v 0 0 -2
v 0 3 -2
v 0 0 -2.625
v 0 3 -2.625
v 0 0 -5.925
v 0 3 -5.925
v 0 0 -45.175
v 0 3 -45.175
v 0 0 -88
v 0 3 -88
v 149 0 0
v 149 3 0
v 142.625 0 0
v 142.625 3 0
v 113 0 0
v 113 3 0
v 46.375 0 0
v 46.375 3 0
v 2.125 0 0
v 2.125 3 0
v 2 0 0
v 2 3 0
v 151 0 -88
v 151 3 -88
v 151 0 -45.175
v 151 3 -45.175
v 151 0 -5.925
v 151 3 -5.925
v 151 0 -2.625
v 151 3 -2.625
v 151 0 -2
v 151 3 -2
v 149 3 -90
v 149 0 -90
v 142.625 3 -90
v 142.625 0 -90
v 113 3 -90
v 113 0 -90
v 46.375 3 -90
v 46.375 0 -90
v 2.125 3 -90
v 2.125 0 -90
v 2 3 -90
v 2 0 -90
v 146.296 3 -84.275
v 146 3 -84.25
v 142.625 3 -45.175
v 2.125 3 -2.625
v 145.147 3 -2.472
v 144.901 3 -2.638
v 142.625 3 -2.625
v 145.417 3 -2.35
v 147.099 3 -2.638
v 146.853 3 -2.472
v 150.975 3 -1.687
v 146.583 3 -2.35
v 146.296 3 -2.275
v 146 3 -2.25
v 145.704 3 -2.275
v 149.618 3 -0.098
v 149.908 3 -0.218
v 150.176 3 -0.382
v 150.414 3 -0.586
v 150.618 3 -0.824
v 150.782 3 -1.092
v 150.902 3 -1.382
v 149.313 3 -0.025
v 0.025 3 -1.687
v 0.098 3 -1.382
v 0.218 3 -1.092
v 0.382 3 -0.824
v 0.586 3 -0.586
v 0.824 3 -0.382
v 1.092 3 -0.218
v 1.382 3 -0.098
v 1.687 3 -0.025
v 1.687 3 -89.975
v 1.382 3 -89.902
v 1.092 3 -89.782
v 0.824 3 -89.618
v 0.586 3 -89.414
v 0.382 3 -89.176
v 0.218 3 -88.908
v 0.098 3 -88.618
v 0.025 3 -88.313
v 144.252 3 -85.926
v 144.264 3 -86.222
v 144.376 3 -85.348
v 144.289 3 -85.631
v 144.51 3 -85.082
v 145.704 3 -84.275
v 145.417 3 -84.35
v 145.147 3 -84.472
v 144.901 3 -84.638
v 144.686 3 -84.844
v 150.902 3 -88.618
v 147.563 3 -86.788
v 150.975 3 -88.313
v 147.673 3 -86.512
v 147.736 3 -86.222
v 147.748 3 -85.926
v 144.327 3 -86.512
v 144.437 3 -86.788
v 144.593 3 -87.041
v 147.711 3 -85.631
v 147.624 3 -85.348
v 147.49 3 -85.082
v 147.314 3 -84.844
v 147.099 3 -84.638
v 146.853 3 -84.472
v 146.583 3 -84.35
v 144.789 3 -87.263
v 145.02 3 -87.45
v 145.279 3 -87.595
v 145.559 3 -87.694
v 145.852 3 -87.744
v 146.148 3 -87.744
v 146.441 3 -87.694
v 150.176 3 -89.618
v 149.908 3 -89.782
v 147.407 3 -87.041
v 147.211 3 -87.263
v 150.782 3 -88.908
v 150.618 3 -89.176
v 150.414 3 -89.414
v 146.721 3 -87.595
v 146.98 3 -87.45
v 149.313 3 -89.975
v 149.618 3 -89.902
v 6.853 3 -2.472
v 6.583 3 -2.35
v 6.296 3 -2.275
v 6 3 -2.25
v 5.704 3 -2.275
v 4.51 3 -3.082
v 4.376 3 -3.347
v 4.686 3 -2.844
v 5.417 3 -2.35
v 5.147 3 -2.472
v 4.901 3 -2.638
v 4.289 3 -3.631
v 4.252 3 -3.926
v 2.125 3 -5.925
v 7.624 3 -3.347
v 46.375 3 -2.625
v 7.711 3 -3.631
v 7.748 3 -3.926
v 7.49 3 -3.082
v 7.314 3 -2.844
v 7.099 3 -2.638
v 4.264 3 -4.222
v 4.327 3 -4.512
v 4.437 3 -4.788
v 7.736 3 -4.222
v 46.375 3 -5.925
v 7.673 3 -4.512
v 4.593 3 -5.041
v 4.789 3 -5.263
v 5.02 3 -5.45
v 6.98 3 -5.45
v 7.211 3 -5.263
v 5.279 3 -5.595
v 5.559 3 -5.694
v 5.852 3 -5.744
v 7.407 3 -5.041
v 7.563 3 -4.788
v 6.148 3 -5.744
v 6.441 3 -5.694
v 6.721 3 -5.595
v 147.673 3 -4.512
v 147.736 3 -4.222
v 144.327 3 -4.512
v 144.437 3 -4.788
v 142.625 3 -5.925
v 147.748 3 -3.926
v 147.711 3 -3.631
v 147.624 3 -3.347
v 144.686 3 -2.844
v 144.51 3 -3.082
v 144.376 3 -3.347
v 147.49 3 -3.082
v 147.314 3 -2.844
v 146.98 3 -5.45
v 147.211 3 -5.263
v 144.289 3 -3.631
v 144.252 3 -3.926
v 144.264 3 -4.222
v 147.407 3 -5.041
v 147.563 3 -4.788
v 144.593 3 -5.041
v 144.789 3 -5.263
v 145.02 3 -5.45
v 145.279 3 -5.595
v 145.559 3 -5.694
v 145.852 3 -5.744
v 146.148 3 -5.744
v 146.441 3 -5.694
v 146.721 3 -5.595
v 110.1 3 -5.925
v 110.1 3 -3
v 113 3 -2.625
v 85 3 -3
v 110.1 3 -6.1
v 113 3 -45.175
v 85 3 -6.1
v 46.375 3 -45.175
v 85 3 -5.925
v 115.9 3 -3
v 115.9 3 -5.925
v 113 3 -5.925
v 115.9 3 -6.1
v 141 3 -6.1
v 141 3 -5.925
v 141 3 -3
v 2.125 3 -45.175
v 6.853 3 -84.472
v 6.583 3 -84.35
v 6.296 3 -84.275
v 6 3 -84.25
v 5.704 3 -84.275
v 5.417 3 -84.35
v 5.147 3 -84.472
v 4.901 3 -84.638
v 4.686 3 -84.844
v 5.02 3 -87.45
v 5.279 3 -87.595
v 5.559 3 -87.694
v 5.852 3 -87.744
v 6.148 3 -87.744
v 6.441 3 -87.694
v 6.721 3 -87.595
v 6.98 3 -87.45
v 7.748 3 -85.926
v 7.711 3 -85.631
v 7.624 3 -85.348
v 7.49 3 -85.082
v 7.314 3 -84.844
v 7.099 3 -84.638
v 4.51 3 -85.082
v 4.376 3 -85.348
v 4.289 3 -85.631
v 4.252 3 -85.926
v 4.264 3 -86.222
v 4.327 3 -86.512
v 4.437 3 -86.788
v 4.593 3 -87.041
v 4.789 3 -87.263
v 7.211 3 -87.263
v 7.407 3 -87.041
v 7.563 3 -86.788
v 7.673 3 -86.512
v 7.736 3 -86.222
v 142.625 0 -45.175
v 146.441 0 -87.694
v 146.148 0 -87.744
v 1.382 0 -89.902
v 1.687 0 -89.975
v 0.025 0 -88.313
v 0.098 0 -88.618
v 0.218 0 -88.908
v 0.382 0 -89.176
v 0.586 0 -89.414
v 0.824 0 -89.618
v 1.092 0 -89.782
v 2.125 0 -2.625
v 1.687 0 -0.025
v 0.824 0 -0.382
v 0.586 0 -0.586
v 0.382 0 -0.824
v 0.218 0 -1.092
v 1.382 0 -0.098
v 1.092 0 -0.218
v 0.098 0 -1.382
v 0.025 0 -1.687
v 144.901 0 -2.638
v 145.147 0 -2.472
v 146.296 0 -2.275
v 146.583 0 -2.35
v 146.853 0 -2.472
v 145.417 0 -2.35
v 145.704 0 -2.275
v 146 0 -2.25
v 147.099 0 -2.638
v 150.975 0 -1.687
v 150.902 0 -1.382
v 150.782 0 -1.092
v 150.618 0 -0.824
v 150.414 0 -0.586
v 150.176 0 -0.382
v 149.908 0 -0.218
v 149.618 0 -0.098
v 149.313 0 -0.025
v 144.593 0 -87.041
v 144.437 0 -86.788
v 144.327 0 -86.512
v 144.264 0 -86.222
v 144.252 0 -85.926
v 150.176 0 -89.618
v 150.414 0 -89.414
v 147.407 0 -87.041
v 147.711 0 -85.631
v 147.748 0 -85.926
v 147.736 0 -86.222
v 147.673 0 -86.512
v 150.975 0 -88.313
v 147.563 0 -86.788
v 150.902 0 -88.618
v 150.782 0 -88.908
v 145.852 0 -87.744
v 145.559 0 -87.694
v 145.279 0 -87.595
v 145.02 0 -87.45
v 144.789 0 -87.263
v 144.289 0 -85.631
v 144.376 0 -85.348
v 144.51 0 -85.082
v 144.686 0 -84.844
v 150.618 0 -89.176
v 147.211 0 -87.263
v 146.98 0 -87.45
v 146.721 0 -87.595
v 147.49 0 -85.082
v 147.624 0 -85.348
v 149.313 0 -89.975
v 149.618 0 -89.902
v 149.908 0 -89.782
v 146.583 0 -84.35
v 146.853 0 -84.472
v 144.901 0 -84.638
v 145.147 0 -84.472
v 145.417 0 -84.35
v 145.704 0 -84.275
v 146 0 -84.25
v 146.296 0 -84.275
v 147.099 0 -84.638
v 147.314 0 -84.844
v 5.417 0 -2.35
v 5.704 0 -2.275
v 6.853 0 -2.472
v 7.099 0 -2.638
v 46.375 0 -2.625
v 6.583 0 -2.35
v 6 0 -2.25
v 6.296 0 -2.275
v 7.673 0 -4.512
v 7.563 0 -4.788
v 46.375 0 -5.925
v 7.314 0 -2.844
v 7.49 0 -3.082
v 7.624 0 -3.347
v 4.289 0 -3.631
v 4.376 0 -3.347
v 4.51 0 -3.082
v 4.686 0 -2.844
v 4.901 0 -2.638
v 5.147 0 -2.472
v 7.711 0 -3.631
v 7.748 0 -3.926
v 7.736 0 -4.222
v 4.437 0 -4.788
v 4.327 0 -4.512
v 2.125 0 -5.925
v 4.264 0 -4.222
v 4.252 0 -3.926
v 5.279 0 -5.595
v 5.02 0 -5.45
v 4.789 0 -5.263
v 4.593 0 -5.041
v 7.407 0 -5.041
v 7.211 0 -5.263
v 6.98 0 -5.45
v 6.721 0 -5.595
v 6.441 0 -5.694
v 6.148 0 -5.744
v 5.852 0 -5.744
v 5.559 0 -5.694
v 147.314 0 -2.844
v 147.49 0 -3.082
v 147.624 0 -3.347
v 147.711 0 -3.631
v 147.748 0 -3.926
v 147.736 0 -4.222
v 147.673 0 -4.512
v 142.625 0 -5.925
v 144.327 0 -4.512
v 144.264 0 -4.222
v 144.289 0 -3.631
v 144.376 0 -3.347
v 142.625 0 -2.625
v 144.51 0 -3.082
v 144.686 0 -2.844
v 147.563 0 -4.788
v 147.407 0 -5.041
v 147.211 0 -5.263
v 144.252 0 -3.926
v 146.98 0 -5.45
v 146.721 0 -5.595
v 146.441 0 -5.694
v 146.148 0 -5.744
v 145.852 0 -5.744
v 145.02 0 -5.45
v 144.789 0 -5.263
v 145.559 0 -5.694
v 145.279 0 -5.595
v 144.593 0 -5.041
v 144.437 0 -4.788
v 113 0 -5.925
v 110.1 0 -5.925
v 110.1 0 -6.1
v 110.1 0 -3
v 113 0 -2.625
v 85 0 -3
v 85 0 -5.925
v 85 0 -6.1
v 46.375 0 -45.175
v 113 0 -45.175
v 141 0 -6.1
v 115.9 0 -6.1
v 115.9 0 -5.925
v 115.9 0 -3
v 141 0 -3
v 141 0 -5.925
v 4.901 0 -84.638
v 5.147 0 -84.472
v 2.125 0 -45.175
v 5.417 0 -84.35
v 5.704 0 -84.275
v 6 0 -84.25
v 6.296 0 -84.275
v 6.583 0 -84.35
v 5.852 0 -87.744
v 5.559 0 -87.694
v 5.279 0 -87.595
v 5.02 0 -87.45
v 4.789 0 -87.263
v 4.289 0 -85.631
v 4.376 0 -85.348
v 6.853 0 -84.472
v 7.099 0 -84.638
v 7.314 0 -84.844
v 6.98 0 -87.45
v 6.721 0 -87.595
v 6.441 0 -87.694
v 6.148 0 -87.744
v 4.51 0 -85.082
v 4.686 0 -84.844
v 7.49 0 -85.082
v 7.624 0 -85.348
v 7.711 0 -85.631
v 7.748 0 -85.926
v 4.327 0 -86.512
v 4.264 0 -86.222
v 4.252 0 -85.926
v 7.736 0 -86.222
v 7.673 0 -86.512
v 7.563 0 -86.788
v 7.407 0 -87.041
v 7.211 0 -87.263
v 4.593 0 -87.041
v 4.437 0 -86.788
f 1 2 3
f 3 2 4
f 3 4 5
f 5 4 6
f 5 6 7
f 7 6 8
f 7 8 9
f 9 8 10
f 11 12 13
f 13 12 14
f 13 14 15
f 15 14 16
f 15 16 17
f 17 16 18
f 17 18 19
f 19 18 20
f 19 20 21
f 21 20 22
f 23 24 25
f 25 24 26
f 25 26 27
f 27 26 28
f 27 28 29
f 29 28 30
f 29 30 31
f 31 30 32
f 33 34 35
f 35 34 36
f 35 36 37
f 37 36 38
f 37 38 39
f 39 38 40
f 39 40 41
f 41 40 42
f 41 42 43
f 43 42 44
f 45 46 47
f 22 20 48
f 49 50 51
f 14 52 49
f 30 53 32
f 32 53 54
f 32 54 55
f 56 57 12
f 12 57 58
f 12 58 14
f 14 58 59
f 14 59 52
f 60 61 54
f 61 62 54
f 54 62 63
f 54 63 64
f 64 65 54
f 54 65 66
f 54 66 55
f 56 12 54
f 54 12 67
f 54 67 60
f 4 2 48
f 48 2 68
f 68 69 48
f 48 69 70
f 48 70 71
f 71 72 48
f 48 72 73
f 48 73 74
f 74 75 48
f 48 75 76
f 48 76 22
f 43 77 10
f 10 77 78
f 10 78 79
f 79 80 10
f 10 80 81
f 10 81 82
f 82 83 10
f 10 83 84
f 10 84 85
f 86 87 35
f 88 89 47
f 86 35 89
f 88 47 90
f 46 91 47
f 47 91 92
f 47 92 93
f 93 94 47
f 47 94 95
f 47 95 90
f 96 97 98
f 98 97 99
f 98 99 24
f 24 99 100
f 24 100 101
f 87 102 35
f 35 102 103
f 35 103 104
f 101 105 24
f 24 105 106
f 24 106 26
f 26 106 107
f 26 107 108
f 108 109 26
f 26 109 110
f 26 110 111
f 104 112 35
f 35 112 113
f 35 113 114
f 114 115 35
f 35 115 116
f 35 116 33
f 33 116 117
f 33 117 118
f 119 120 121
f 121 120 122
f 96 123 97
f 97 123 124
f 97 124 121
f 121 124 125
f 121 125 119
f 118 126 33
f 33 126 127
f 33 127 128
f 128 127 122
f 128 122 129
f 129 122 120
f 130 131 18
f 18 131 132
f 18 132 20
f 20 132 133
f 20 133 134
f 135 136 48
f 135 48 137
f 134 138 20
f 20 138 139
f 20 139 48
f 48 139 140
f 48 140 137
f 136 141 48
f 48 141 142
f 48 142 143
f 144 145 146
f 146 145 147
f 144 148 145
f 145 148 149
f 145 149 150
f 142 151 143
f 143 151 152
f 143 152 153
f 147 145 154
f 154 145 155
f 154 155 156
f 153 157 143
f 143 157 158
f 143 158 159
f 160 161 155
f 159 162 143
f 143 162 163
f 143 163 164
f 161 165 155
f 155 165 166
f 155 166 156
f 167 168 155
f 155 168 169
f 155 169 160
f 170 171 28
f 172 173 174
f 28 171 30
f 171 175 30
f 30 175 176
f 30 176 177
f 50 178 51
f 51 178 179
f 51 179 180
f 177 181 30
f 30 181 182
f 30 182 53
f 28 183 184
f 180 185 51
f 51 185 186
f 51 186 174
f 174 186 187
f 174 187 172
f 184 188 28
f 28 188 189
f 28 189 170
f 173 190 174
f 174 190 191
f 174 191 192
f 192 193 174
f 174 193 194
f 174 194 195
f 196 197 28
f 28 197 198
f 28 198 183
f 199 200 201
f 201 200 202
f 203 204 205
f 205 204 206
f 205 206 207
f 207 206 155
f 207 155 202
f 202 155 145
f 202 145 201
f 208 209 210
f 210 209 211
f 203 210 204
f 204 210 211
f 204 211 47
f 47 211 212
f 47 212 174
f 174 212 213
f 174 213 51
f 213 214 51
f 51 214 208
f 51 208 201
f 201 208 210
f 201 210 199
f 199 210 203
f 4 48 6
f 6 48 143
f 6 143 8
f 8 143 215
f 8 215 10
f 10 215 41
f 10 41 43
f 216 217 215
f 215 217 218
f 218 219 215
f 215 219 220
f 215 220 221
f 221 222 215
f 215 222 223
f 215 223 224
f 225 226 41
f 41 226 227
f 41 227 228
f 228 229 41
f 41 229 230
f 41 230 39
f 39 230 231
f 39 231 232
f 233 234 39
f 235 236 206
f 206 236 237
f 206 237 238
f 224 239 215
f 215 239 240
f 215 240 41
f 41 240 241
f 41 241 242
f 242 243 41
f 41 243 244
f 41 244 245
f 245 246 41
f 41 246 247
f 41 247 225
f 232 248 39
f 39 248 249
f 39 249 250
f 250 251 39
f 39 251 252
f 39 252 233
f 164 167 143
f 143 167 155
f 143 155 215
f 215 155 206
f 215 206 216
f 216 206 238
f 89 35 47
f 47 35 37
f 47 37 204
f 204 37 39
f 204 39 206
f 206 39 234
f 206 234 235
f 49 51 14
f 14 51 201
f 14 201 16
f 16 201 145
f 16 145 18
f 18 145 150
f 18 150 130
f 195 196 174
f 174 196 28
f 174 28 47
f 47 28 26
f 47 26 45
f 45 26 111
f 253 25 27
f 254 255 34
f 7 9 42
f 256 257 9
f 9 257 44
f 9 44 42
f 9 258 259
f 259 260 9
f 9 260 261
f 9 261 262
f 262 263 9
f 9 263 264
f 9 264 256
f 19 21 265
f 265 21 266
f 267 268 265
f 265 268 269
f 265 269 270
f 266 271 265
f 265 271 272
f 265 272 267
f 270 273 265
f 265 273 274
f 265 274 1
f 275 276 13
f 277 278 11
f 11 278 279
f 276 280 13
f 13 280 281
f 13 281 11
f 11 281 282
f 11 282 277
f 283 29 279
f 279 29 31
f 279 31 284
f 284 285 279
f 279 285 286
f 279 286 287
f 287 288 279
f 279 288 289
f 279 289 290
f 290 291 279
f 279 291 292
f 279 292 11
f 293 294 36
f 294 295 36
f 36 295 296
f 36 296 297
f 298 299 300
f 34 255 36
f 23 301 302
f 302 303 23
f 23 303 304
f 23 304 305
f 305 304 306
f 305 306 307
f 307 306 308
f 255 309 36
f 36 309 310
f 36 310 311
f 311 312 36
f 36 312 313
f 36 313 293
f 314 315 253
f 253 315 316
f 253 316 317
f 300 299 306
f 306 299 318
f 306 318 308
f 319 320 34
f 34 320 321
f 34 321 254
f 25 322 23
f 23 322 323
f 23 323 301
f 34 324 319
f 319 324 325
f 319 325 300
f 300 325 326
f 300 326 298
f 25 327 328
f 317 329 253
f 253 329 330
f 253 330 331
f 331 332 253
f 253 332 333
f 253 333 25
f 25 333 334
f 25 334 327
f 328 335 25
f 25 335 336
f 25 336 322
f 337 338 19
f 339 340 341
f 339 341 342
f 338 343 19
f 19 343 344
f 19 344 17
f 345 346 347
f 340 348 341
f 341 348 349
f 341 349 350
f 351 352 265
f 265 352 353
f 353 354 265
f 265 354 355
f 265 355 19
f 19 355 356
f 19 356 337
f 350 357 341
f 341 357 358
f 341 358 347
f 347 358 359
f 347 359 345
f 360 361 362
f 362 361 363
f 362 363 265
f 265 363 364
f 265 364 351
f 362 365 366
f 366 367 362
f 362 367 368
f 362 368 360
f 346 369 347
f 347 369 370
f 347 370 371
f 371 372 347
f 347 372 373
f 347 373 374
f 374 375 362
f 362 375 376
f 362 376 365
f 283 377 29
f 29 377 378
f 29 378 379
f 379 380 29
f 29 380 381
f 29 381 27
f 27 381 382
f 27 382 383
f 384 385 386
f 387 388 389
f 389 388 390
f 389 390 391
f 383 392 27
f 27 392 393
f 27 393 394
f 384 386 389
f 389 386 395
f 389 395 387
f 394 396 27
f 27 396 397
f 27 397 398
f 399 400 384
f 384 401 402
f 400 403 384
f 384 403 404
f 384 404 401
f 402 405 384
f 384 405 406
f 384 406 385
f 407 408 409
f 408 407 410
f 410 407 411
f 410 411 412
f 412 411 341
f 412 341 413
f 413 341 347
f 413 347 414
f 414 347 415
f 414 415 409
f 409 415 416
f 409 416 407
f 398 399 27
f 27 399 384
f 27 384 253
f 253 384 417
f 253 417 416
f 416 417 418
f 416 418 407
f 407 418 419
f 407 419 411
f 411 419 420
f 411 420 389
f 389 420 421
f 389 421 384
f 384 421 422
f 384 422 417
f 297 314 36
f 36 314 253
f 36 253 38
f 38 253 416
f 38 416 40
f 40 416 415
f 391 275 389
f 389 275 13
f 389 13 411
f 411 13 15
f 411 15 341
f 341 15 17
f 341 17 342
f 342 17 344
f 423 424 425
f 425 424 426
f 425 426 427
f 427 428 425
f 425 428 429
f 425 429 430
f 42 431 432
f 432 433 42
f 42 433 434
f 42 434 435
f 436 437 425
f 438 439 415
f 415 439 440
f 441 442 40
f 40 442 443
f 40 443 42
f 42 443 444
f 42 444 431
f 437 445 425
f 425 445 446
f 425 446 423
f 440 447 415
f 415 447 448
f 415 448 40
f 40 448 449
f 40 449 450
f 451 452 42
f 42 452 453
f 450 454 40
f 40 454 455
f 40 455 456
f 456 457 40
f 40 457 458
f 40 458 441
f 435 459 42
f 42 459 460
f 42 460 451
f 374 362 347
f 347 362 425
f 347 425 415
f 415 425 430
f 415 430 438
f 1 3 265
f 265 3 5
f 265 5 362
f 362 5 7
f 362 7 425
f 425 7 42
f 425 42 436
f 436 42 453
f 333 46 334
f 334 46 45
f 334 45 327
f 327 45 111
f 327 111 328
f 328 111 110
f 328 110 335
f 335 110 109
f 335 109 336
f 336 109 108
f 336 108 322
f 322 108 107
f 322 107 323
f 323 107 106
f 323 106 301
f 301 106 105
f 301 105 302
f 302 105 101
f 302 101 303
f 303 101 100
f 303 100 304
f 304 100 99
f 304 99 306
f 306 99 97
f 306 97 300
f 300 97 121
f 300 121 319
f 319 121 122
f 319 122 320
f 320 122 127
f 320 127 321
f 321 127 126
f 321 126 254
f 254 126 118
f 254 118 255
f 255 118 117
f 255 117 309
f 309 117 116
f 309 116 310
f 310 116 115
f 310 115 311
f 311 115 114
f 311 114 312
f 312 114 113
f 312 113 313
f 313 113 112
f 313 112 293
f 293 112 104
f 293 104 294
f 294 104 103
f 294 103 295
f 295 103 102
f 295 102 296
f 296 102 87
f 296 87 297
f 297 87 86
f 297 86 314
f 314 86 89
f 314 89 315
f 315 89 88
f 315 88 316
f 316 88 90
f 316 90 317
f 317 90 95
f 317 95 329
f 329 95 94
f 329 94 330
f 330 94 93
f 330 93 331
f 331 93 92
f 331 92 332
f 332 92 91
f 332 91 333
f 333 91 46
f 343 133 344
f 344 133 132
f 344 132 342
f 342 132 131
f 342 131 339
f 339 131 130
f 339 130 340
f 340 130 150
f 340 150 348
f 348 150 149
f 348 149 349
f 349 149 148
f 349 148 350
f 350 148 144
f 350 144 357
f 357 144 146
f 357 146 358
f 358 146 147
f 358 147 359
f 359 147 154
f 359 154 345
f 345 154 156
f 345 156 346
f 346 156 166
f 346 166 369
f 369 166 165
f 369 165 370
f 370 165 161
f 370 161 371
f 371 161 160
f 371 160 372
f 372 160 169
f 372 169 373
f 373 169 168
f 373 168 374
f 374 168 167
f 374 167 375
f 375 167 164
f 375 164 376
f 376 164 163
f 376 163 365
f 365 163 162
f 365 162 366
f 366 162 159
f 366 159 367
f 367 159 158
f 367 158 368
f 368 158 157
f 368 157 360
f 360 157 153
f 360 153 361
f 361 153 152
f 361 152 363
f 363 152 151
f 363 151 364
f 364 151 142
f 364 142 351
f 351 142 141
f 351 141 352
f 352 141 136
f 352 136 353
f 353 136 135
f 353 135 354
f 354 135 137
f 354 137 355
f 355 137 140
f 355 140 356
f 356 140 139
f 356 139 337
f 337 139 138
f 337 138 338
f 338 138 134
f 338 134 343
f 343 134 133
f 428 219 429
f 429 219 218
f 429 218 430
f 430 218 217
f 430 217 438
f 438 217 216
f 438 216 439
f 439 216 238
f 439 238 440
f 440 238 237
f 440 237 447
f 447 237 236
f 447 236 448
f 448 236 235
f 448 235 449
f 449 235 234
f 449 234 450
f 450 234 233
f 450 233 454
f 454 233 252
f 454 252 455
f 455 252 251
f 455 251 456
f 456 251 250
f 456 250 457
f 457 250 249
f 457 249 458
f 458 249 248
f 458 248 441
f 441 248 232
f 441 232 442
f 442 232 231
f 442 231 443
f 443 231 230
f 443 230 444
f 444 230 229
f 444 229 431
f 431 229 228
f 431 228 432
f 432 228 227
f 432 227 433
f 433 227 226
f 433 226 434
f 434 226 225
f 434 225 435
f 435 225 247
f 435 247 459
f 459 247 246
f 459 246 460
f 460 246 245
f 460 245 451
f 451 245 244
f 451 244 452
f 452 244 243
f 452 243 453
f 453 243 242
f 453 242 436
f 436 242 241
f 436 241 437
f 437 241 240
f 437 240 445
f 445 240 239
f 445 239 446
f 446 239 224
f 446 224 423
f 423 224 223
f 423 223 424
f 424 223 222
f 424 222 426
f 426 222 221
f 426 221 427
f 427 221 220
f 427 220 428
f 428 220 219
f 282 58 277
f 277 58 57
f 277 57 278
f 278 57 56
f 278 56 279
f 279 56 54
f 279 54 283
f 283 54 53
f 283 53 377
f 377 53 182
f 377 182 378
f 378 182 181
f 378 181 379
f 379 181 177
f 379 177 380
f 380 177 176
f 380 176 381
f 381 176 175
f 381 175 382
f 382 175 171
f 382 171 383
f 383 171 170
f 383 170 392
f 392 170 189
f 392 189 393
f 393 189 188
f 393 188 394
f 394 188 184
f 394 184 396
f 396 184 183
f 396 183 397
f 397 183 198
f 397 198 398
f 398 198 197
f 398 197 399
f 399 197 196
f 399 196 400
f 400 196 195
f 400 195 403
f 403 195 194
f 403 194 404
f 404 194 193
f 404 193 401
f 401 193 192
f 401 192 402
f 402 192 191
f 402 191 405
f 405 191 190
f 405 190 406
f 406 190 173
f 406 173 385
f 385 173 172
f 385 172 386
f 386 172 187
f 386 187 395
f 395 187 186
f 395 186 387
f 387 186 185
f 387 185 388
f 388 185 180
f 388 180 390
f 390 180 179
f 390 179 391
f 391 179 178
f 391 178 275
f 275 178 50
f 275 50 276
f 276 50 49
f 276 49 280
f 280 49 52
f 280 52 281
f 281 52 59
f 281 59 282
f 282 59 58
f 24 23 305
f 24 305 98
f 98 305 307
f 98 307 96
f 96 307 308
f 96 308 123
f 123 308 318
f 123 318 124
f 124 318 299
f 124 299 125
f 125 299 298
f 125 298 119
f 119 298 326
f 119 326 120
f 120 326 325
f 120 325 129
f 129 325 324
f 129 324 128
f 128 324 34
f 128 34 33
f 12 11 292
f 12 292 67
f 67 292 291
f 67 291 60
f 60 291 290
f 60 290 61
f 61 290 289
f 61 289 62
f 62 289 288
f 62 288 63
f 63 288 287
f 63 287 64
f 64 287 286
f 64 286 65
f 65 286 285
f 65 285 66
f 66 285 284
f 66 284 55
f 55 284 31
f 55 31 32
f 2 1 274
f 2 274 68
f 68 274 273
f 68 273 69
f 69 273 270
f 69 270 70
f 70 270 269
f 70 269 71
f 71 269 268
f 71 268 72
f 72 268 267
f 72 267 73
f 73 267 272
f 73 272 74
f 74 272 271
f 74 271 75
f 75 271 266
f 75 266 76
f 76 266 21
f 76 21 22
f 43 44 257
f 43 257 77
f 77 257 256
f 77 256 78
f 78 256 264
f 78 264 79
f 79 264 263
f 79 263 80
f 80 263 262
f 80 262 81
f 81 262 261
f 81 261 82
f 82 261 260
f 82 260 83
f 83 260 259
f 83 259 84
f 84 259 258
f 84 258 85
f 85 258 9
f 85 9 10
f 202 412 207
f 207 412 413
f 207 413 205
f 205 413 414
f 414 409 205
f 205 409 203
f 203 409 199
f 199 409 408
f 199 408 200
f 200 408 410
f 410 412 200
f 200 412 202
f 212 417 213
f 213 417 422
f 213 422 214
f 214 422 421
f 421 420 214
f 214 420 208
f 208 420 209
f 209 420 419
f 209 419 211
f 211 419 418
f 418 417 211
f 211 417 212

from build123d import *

# Parameters (mm, degrees)
SKETCH1_W           = 151
SKETCH1_H           = 90
BOSS_EXTRUDE1_DEPTH = 3
SKETCH2_R           = 1.75
CUT_EXTRUDE1_DEPTH  = 176.812400018
FILLET1_R           = 2
SKETCH3_W           = 25.1
SKETCH3_H           = 3.1
CUT_EXTRUDE2_DEPTH  = 176.812400018


with BuildPart() as part:
    # Sketch1 → Boss-Extrude1 (new body)
    with BuildSketch(Plane(origin=(0, 0, 0), x_dir=(1, 0, 0), z_dir=(0, 1, 0))):
        with Locations((75.5, 45)):
            Rectangle(SKETCH1_W, SKETCH1_H)
    extrude(amount=BOSS_EXTRUDE1_DEPTH)

    # Sketch2 → Cut-Extrude1 (cut, through all)
    with BuildSketch(Plane(origin=(0, 3, 0), x_dir=(1, 0, 0), z_dir=(0, 1, 0))):
        with Locations(Location((146, 86, 0), (0, 0, 270))):
            Circle(SKETCH2_R)
        with Locations(Location((146, 4, 0), (0, 0, 270))):
            Circle(SKETCH2_R)
        with Locations(Location((6, 86, 0), (0, 0, 270))):
            Circle(SKETCH2_R)
        with Locations(Location((6, 4, 0), (0, 0, 270))):
            Circle(SKETCH2_R)
    extrude(amount=-CUT_EXTRUDE1_DEPTH, mode=Mode.SUBTRACT)

    # Fillet1
    fillet1_edges = [part.edges().sort_by_distance(p)[0] for p in [
        (0, 1.5, -90),
        (151, 1.5, -90),
        (151, 1.5, 0),
        (0, 1.5, 0),
    ]]
    fillet(fillet1_edges, radius=FILLET1_R)

    # Sketch3 → Cut-Extrude2 (cut, through all)
    with BuildSketch(Plane(origin=(0, 3, 0), x_dir=(1, 0, 0), z_dir=(0, 1, 0))):
        with Locations((97.55, 4.55)):
            Rectangle(SKETCH3_W, SKETCH3_H)
        with Locations((128.45, 4.55)):
            Rectangle(SKETCH3_W, SKETCH3_H)
    extrude(amount=-CUT_EXTRUDE2_DEPTH, mode=Mode.SUBTRACT)


solid = part.part
